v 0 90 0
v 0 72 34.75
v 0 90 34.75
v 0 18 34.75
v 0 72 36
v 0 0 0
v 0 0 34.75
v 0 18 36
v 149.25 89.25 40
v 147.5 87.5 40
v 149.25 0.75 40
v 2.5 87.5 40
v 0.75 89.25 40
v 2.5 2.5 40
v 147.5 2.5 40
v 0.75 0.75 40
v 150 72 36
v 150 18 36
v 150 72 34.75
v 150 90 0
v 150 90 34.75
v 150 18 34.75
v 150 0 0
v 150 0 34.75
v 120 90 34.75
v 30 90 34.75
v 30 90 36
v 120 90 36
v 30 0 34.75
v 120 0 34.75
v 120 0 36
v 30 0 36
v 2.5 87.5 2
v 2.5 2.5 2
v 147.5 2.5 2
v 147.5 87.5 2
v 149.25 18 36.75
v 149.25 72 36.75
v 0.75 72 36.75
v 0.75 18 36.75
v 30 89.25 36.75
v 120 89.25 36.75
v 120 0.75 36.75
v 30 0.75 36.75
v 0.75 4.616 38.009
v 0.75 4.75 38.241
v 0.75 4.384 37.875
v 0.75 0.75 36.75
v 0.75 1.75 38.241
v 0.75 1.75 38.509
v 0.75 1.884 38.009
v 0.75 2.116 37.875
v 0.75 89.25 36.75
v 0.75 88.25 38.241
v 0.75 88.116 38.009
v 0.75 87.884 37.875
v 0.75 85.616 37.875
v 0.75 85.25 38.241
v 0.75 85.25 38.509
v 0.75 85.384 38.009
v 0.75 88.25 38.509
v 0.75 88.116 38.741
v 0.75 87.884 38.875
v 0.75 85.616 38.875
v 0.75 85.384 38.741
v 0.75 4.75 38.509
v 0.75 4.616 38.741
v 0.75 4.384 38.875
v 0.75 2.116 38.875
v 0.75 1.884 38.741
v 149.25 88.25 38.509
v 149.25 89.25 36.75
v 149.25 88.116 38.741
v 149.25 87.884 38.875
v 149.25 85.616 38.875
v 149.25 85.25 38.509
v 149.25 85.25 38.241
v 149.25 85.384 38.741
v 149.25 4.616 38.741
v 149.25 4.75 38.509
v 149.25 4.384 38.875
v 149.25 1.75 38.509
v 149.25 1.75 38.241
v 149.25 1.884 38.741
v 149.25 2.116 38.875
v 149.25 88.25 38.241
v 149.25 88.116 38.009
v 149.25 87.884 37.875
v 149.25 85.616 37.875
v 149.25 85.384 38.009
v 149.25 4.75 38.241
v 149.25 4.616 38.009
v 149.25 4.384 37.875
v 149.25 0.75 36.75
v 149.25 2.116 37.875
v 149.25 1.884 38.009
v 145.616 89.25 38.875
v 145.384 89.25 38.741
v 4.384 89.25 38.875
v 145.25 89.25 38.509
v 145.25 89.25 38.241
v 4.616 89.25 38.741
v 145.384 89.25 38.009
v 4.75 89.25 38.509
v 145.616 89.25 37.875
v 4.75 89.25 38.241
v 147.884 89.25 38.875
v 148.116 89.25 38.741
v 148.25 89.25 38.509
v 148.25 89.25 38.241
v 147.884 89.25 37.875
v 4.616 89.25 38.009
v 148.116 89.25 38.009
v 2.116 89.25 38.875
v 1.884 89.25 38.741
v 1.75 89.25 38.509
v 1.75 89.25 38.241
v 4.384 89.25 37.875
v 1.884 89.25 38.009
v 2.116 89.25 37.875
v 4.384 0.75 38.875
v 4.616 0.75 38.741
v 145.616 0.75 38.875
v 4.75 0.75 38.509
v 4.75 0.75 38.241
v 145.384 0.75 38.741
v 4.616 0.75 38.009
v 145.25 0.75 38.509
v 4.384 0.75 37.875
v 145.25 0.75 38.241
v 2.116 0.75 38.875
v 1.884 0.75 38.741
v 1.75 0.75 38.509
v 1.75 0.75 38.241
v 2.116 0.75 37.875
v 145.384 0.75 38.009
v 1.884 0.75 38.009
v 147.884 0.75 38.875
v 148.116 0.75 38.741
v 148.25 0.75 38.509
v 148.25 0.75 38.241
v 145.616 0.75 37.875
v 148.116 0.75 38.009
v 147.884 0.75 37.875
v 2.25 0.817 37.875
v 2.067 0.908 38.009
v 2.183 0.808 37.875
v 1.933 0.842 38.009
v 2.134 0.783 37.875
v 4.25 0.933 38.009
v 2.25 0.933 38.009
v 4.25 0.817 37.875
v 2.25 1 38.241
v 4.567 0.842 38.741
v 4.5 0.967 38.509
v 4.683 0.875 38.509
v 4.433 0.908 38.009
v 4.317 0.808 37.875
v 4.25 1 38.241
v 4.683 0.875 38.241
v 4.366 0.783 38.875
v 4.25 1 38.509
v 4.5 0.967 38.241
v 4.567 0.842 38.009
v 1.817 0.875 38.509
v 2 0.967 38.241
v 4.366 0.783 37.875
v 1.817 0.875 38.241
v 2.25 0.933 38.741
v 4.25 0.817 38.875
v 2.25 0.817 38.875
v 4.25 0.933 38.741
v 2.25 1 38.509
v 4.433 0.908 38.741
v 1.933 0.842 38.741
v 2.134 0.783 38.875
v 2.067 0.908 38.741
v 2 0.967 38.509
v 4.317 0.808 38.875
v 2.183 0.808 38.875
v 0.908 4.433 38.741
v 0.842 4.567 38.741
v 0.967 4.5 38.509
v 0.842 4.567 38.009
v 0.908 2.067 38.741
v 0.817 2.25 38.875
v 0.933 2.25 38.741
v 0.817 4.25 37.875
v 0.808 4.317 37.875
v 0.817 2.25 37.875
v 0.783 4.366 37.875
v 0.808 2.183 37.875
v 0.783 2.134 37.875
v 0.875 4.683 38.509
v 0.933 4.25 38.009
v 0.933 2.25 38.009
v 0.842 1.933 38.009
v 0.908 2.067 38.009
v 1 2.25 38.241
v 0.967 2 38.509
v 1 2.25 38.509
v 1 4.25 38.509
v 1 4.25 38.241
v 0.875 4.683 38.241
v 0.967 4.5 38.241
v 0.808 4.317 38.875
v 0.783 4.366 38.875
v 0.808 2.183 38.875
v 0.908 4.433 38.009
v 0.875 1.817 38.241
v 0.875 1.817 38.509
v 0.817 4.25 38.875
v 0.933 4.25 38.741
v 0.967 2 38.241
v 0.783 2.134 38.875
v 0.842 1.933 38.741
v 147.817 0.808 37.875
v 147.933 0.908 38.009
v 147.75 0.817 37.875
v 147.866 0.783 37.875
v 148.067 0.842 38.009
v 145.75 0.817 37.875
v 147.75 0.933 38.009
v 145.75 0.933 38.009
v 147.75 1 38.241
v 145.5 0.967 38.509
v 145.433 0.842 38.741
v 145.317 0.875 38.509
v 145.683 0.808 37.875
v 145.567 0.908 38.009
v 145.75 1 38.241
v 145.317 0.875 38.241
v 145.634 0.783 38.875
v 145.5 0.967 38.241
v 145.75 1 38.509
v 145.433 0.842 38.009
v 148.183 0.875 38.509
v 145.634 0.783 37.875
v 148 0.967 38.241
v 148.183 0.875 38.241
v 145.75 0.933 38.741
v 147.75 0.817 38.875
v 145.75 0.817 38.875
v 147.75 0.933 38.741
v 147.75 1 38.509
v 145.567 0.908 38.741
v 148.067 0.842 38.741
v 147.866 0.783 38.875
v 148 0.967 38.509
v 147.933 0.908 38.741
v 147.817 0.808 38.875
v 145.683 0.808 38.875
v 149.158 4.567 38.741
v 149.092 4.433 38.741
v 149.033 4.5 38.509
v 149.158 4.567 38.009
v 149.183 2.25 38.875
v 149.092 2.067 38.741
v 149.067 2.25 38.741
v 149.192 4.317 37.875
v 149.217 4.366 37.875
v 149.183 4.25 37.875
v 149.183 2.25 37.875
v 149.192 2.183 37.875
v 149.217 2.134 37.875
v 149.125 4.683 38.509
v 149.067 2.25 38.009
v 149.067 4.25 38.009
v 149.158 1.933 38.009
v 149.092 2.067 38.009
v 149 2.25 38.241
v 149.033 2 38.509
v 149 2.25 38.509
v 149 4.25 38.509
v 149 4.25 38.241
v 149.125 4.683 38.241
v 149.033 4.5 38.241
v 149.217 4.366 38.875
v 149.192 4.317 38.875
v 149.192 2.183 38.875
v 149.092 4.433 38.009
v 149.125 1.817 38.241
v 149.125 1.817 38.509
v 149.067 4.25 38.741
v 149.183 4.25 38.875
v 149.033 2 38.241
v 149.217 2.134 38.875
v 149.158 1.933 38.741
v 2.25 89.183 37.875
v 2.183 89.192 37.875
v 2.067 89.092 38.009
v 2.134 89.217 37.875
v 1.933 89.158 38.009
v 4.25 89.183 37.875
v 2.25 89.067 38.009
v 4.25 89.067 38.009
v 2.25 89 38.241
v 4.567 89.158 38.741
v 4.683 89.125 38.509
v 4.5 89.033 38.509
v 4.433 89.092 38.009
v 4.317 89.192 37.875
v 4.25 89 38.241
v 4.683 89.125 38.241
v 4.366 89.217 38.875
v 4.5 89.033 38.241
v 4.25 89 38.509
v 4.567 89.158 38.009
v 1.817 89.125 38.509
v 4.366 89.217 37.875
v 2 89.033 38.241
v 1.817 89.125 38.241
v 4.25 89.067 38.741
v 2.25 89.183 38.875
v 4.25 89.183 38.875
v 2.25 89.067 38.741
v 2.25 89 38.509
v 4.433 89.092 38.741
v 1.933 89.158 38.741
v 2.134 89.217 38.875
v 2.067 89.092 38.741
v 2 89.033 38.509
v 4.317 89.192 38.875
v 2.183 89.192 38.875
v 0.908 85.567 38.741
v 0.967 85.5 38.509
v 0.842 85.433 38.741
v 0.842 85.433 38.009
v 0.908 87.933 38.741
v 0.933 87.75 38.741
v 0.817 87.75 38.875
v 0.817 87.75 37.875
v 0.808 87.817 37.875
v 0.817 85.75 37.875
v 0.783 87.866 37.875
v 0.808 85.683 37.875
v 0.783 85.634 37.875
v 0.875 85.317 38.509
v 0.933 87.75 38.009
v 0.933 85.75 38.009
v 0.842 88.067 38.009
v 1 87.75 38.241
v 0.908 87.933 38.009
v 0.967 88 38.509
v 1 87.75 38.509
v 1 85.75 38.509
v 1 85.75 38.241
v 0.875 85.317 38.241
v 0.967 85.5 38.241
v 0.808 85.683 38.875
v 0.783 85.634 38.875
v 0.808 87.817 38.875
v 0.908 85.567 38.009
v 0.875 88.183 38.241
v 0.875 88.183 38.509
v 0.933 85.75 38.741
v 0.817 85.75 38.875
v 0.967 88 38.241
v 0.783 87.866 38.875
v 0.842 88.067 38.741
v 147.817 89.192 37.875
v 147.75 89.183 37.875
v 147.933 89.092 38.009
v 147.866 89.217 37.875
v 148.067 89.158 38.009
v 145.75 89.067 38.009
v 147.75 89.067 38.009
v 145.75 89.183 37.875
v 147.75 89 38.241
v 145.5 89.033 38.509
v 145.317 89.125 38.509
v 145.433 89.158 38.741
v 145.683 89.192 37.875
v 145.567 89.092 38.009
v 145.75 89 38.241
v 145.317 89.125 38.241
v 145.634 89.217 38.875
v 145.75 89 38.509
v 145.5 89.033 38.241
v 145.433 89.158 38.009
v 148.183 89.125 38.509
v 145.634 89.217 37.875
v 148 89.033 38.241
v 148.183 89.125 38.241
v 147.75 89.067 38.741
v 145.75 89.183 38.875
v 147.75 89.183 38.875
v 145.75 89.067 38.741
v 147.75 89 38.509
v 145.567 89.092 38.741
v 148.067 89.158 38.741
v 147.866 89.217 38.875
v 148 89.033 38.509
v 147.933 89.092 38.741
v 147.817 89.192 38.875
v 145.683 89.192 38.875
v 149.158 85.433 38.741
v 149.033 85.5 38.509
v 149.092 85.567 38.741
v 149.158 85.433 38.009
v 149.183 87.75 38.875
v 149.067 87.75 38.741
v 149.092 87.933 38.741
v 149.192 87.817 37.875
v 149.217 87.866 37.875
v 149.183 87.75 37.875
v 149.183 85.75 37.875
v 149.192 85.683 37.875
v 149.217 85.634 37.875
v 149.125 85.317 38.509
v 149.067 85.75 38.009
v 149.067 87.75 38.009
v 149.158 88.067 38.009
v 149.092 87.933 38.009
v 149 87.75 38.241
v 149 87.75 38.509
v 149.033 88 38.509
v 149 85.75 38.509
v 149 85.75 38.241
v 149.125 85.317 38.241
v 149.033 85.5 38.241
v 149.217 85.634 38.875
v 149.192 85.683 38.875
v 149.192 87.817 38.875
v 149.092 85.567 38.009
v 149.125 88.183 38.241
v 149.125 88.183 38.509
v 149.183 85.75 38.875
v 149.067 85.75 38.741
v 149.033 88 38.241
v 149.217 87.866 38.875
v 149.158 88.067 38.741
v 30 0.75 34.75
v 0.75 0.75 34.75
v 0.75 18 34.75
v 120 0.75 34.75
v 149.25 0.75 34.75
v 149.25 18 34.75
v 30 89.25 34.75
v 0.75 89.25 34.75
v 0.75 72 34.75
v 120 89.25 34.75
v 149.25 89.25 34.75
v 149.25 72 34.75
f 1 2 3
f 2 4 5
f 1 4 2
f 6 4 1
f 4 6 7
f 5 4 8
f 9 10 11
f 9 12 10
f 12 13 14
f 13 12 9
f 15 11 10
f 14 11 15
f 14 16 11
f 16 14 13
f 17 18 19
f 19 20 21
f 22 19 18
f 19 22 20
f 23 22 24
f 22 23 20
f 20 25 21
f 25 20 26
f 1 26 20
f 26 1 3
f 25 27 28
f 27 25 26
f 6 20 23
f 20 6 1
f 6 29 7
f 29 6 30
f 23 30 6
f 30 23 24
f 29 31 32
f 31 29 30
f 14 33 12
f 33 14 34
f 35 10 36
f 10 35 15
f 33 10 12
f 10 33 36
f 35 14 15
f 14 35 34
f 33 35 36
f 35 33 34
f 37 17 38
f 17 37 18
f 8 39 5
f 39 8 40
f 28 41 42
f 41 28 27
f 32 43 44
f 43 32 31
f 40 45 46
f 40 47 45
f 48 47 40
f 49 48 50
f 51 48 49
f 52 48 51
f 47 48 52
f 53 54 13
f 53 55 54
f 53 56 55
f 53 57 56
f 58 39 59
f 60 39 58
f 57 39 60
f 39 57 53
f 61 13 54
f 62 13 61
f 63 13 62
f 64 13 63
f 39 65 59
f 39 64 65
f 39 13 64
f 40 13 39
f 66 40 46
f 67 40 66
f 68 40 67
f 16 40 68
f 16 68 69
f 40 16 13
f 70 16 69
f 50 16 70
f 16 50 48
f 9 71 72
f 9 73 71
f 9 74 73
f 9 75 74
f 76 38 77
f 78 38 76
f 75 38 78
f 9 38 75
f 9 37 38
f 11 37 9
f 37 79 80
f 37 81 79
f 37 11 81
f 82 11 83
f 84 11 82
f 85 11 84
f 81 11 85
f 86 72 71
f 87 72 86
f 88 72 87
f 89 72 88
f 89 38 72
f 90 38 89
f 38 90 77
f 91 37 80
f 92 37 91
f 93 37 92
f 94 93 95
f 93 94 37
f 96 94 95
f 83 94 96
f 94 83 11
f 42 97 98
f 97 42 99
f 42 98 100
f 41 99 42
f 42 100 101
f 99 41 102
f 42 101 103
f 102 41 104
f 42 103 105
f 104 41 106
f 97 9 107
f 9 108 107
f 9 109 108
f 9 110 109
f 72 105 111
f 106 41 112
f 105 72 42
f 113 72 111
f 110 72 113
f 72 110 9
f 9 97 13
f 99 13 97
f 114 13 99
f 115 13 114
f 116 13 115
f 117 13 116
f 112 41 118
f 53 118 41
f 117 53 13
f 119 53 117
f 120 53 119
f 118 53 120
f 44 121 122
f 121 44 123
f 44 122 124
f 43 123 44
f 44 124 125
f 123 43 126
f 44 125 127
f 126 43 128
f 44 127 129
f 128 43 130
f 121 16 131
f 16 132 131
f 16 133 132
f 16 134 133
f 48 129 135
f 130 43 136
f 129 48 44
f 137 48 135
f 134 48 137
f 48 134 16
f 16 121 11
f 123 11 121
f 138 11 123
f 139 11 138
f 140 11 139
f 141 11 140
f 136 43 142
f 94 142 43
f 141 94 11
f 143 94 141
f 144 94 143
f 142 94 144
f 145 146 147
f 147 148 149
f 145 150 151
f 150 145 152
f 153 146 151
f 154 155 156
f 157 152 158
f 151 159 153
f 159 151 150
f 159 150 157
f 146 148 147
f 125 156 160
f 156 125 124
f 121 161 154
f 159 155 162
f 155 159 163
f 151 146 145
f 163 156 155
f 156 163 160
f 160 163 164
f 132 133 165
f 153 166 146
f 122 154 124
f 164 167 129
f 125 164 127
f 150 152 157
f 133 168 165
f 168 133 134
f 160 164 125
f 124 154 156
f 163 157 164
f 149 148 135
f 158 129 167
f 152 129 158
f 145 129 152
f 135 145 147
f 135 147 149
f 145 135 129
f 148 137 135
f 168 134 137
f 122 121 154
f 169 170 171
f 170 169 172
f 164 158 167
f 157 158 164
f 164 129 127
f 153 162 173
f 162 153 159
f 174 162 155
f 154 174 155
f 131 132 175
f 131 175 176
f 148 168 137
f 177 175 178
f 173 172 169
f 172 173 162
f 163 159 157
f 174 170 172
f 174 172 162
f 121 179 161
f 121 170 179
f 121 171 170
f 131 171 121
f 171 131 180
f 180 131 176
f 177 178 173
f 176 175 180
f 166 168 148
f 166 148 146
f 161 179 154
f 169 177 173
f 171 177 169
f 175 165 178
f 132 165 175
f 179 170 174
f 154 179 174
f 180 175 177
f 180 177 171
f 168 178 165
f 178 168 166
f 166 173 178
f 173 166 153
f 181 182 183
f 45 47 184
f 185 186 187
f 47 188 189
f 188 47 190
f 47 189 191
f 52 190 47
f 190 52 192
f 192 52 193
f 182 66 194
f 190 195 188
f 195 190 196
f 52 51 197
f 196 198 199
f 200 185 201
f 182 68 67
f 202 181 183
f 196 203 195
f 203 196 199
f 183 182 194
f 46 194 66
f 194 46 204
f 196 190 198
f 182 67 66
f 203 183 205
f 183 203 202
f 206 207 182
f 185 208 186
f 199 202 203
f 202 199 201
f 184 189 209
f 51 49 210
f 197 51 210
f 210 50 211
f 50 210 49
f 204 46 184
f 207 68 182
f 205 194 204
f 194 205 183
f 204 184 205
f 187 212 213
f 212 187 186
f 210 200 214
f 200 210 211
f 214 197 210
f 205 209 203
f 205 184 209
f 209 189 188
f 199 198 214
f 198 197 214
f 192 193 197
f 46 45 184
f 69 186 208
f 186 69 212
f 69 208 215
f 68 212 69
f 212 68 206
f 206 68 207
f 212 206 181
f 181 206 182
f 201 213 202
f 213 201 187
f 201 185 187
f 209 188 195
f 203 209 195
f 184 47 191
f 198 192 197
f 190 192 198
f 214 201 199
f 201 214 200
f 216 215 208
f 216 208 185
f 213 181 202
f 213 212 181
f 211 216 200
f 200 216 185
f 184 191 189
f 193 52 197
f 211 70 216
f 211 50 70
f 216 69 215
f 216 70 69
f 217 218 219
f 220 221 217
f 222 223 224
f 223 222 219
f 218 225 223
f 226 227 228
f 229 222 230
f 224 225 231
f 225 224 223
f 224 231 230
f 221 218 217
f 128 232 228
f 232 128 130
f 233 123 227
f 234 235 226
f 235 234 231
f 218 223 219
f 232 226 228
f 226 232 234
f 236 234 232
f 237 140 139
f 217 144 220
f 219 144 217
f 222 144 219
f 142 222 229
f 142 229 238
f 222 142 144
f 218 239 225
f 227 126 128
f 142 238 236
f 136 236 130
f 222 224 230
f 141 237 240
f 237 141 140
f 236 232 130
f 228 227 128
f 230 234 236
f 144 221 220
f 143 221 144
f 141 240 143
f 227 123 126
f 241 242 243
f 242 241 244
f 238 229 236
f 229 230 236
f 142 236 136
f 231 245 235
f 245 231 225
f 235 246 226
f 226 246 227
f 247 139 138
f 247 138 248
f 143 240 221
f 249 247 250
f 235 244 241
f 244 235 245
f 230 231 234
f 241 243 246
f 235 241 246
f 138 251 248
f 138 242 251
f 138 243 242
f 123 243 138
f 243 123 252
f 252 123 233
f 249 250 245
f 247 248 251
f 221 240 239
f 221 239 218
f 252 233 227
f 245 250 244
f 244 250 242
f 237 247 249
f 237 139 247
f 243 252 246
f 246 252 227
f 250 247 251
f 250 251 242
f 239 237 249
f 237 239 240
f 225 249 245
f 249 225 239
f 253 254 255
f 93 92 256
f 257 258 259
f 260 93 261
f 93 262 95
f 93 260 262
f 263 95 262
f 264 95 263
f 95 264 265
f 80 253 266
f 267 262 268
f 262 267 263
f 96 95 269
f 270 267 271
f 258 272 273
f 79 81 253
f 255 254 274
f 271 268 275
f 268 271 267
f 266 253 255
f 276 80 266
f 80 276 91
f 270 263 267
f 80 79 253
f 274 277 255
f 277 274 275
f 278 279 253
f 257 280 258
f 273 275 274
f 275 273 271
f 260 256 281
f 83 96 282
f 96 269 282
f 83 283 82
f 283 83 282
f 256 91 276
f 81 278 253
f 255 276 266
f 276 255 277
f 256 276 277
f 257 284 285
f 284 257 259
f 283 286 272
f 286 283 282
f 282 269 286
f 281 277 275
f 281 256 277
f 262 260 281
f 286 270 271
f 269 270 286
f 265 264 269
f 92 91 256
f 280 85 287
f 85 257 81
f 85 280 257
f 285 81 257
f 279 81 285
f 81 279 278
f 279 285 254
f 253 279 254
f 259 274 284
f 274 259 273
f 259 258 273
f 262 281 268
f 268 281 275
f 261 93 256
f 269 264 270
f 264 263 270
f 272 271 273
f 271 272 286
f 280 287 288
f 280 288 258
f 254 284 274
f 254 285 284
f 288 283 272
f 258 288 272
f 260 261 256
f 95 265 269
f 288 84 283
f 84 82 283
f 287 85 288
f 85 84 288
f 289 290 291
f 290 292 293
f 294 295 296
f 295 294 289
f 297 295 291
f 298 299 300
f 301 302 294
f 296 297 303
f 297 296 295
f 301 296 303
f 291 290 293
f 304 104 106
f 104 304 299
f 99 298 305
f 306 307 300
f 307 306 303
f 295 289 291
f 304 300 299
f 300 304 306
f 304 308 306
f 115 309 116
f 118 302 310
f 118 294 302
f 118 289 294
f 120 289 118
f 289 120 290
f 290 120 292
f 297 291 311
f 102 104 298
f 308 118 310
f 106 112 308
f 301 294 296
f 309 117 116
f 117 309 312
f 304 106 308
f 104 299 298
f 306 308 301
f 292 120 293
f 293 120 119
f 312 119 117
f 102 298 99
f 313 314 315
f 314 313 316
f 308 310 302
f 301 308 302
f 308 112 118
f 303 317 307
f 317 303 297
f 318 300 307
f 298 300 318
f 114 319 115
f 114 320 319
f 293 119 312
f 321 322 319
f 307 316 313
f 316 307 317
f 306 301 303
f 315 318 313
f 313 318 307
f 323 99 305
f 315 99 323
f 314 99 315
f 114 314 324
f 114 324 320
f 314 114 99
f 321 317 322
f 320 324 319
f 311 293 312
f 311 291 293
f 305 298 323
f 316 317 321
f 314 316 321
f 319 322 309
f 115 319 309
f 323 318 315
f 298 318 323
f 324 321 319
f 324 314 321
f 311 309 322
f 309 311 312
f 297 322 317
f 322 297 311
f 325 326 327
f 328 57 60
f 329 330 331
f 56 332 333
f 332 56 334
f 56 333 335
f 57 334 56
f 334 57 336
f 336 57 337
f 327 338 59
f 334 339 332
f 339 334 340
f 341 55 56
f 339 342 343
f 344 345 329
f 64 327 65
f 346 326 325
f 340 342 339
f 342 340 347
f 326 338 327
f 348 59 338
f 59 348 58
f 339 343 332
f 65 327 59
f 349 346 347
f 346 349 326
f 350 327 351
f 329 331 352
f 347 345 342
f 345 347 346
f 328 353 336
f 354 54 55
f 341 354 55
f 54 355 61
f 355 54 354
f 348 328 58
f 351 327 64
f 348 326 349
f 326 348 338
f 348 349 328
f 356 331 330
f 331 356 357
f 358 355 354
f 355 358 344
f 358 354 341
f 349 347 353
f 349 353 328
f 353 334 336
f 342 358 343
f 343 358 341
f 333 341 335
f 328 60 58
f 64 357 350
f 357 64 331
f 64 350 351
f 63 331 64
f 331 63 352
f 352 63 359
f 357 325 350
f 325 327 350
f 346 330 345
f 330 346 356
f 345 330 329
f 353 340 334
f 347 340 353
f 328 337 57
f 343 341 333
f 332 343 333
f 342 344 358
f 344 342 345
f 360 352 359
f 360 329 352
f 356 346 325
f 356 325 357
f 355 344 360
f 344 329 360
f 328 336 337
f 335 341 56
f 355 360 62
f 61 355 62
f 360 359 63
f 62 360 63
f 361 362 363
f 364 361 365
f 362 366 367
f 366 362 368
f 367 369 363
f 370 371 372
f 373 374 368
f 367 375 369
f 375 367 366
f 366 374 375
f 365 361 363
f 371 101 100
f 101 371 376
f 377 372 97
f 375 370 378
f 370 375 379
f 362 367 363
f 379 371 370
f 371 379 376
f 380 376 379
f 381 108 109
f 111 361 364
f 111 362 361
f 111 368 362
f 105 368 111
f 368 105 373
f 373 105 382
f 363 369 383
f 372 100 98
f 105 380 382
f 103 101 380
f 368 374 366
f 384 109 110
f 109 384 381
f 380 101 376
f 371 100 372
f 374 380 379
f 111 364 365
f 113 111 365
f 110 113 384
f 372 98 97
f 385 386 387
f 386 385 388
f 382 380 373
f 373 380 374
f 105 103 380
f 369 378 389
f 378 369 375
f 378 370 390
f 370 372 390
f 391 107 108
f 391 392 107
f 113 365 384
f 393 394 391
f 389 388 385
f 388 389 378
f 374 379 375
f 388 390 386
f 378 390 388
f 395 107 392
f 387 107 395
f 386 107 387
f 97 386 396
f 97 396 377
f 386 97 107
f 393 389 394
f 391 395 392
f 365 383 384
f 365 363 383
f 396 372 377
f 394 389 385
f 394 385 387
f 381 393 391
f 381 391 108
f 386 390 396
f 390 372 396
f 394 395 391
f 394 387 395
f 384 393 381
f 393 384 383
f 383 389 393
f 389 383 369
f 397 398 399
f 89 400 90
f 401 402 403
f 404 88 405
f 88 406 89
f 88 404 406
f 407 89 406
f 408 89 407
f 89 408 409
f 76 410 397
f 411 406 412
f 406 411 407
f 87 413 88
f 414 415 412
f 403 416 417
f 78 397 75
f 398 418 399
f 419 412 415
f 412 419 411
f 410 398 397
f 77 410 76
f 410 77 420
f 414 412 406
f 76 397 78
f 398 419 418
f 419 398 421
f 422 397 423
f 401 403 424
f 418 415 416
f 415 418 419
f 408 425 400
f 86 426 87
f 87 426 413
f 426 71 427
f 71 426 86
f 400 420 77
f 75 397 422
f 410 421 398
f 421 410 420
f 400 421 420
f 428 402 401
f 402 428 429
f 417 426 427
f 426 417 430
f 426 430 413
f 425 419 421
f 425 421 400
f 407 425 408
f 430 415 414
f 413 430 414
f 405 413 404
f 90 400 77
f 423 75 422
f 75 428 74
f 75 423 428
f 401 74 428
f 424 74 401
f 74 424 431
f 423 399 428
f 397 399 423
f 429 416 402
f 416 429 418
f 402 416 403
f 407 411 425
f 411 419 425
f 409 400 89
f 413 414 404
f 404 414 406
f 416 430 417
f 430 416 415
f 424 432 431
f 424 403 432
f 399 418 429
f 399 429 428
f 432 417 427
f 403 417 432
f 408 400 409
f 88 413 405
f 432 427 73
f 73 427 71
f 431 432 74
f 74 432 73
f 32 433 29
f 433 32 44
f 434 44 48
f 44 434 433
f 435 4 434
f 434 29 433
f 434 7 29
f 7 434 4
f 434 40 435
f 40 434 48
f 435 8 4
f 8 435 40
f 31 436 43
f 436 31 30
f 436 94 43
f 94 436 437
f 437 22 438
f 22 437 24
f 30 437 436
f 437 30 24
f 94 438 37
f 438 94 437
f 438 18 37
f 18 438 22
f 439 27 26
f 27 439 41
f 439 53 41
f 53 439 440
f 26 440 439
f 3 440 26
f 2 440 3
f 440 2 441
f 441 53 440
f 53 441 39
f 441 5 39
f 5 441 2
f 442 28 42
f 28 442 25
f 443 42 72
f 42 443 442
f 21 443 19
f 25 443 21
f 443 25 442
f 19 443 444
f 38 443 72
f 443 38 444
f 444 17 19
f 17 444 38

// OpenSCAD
include <boardgame_insert_toolkit_lib.2.scad>;

// determines whether lids are output.
g_b_print_lid = false;

// determines whether boxes are output.
g_b_print_box = true; 

// Focus on one box
// g_isolated_print_box = ""; 

// Used to visualize how all of the boxes fit together. 
g_b_visualization = false;          
        
// this is the outer wall thickness. 
//Default = 1.5mm
g_wall_thickness = 1.5;

// The tolerance value is extra space put between planes of the lid and box that fit together.
// Increase the tolerance to loosen the fit and decrease it to tighten it.
//
// Note that the tolerance is applied exclusively to the lid.
// So if the lid is too tight or too loose, change this value ( up for looser fit, down for tighter fit ) and 
// you only need to reprint the lid.
// 
// The exception is the stackable box, where the bottom of the box is the lid of the box below,
// in which case the tolerance also affects that box bottom.
//
g_tolerance = 0.15;

// This adjusts the position of the lid detents downward. 
// The larger the value, the bigger the gap between the lid and the box.
g_tolerance_detents_pos = 0.1;

data =
[
    [   "jf_fruitholder",
        [
            [ BOX_SIZE_XYZ,                                     [150, 90, 40] ],
            [ BOX_LID,
                [
                    [ LID_SOLID_B, f],
                    [LID_FIT_UNDER_B, f],
                ]
            ],
            [ BOX_COMPONENT,
                [
                    [CMP_COMPARTMENT_SIZE_XYZ,  [ 145, 85, 38] ]
                ]
            ],                            
        ]
    ],
];

MakeAll();
